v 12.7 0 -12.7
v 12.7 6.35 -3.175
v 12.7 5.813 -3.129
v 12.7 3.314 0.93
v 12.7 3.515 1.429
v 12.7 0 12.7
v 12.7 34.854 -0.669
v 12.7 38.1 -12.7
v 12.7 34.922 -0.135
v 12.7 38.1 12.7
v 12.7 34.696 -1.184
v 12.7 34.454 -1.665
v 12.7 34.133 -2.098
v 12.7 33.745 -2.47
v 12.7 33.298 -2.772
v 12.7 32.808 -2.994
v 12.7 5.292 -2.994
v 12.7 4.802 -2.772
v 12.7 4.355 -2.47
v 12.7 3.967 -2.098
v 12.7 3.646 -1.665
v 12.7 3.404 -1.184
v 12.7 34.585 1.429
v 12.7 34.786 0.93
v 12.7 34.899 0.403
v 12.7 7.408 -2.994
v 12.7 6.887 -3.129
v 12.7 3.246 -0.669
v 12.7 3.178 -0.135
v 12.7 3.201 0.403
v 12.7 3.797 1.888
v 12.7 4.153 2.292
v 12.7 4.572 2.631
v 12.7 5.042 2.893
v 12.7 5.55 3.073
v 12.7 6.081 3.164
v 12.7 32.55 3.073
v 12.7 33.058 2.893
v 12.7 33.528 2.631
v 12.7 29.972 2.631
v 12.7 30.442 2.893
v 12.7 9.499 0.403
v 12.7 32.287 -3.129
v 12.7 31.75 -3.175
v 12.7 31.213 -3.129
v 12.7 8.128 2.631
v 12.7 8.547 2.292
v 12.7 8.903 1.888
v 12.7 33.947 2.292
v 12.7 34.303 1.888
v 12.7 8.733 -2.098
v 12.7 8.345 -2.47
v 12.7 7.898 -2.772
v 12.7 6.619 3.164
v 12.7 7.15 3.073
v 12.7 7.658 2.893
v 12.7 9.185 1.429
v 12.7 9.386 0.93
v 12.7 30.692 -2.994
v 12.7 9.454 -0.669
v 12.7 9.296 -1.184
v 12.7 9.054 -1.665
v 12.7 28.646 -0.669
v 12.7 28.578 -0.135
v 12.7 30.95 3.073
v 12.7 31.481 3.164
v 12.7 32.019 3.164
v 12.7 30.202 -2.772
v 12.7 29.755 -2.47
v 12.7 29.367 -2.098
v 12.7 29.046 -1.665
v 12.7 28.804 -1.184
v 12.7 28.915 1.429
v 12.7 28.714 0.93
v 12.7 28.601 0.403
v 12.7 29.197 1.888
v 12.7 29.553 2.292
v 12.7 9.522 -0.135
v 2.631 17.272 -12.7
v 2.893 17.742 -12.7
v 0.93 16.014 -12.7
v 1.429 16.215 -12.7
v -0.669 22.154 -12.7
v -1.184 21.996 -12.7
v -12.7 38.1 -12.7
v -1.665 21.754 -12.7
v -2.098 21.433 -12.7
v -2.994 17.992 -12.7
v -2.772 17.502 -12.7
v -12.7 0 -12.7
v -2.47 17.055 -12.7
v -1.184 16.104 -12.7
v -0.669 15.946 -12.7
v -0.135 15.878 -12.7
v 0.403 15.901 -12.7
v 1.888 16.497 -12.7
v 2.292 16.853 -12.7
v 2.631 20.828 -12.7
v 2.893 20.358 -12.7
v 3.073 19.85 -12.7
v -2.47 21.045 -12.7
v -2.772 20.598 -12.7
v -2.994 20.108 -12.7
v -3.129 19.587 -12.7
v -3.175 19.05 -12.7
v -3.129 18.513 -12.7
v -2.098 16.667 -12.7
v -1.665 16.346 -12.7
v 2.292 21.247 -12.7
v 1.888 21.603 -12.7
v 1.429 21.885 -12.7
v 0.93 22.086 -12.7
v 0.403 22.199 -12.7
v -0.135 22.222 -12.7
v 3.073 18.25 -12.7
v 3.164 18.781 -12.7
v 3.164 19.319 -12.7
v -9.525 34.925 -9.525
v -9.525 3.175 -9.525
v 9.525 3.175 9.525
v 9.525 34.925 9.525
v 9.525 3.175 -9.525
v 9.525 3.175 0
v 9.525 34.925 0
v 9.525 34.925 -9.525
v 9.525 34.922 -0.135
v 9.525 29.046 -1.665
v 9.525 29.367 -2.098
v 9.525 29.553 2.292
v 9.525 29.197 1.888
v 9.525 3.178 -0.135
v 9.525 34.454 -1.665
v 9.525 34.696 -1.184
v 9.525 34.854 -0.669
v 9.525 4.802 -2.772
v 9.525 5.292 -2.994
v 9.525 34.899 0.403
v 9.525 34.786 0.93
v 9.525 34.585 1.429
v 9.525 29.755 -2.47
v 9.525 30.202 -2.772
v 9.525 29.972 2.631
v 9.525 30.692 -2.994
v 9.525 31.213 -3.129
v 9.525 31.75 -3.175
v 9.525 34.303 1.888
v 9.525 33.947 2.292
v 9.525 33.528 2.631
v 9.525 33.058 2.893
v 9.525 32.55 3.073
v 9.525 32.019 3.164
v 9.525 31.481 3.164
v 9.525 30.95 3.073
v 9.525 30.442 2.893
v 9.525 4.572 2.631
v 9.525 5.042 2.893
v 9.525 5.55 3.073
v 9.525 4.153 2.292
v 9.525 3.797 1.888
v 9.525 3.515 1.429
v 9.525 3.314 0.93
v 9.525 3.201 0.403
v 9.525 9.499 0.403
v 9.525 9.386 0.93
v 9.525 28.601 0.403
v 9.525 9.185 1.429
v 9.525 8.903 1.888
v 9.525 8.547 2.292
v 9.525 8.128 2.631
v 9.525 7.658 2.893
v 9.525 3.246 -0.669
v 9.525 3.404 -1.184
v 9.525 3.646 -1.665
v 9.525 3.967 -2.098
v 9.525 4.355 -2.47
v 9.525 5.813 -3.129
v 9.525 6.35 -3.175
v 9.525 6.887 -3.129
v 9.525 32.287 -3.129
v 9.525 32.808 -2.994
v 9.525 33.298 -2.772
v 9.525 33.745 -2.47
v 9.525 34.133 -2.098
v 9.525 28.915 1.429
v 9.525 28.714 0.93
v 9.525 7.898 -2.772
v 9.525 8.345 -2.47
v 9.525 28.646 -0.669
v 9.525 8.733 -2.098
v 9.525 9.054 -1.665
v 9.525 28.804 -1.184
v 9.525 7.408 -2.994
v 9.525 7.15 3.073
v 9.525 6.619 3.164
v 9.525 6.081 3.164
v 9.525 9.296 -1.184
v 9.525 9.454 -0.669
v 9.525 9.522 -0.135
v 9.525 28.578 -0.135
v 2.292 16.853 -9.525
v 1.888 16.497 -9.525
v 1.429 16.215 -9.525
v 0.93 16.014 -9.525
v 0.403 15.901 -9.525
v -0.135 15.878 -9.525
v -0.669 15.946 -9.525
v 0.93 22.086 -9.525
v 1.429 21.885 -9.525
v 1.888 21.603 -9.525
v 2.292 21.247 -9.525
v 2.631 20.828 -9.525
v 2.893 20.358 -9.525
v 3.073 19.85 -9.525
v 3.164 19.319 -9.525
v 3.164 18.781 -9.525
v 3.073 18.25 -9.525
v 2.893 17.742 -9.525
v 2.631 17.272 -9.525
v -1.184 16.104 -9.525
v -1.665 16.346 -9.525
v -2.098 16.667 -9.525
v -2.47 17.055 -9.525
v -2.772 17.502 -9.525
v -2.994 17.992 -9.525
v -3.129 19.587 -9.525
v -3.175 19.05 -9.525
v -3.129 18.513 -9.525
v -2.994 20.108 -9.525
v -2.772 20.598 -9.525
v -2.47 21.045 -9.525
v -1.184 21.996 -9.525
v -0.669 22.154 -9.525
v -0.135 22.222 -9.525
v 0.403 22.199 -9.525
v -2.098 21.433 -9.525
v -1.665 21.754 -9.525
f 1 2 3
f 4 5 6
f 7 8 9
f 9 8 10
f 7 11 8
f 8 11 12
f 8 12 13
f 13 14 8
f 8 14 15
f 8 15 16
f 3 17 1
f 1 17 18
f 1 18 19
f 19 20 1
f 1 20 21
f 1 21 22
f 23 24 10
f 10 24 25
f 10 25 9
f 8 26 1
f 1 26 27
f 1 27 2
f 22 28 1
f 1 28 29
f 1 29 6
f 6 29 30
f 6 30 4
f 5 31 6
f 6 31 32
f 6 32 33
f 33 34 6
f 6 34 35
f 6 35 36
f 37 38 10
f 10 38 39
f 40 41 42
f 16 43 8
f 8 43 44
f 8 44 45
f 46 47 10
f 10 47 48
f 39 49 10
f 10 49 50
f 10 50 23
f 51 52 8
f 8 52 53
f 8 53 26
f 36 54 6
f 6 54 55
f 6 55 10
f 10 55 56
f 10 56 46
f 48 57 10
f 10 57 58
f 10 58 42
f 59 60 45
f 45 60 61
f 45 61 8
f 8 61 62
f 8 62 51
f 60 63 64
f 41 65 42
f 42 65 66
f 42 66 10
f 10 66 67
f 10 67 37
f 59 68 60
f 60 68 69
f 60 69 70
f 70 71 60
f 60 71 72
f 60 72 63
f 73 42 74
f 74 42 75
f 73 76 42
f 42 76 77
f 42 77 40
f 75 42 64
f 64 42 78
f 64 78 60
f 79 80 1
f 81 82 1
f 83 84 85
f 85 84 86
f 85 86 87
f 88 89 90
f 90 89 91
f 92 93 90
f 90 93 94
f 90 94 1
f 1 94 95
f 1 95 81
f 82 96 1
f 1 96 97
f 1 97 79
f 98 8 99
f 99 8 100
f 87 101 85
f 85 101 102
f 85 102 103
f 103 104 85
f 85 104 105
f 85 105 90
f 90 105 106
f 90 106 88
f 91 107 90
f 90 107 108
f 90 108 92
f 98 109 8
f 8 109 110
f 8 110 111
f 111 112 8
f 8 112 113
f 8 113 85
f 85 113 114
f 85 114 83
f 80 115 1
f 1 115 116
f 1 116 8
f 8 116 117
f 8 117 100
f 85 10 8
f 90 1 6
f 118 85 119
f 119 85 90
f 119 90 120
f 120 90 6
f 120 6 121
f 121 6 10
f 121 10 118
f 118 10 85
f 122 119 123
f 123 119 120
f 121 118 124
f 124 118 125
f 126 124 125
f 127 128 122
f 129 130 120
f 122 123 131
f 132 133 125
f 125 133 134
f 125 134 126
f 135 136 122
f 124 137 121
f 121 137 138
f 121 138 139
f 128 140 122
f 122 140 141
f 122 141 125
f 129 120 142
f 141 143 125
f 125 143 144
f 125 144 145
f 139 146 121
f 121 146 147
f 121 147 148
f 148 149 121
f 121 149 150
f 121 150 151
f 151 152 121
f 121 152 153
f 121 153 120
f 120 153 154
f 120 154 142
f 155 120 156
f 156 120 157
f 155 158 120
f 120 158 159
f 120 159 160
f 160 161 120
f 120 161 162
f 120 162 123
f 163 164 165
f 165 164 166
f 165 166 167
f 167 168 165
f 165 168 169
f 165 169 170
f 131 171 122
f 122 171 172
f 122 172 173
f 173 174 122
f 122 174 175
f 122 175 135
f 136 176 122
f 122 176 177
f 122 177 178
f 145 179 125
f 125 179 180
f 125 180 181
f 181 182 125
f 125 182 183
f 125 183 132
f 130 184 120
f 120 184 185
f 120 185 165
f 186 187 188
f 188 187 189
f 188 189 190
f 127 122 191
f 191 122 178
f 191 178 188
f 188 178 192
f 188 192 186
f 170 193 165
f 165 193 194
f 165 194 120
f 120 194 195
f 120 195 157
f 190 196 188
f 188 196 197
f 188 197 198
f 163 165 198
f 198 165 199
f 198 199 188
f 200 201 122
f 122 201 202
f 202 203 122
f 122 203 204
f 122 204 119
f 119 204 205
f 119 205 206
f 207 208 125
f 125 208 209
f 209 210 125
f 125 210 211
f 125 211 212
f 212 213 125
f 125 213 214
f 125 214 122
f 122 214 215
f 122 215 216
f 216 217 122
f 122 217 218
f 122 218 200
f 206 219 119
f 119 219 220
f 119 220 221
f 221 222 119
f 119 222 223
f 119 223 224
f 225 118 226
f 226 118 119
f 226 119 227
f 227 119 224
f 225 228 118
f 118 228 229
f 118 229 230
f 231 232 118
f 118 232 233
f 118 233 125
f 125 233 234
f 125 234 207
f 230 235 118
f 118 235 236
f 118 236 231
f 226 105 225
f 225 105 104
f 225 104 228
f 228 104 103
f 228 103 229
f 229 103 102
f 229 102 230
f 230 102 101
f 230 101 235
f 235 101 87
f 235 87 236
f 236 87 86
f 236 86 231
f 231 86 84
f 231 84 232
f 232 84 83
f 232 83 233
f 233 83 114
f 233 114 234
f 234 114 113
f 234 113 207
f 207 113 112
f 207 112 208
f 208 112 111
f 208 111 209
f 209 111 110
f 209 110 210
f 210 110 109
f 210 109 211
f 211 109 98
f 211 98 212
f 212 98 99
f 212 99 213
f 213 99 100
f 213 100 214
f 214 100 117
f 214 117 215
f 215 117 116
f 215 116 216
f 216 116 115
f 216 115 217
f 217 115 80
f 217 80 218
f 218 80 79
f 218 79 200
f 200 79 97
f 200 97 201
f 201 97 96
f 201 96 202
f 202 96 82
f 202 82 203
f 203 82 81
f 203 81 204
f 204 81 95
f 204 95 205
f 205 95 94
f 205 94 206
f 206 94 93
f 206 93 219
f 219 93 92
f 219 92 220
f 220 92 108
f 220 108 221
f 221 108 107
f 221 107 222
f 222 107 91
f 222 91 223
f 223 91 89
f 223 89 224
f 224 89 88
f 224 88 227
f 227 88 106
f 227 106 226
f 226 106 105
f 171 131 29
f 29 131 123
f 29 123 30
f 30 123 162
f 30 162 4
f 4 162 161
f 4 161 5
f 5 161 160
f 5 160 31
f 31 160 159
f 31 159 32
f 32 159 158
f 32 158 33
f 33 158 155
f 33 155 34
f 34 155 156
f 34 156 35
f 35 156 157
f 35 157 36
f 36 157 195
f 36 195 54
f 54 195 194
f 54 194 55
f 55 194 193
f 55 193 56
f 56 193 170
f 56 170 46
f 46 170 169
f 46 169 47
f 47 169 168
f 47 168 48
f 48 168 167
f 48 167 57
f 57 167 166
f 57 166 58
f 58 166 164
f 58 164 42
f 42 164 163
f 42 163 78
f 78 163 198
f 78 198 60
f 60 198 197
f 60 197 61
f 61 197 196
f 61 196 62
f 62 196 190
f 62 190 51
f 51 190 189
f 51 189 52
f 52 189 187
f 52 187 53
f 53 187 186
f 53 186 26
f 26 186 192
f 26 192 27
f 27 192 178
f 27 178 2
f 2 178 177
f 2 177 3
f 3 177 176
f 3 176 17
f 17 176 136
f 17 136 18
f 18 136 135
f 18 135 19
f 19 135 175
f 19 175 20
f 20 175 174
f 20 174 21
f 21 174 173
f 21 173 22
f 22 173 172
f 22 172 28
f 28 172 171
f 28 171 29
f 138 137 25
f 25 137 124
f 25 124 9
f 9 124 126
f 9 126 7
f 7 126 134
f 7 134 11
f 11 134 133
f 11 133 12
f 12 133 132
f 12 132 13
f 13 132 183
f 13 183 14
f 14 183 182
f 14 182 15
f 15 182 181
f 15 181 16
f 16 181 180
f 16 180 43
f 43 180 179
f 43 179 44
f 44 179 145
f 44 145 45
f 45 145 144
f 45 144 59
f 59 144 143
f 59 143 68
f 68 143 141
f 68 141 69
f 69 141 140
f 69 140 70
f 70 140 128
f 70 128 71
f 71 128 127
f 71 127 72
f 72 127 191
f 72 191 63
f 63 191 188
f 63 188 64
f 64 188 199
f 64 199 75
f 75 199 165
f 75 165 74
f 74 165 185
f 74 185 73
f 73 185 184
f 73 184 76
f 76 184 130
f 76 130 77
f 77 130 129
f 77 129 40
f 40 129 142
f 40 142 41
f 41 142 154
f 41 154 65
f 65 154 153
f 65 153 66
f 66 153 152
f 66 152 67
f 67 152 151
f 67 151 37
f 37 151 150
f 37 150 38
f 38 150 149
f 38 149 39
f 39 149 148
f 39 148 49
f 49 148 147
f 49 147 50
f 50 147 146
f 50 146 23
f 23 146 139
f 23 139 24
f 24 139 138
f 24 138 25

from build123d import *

# Parameters (mm, degrees)
SKETCH1_W           = 25.4
SKETCH1_H           = 25.4
BOSS_EXTRUDE1_DEPTH = 38.1
CUT_EXTRUDE1_DEPTH  = 43.121134838
CUT_EXTRUDE2_START  = -3.175
CUT_EXTRUDE2_DEPTH  = 31.75
SKETCH4_R           = 3.175
CUT_EXTRUDE3_DEPTH  = 48.519048812
SKETCH5_R           = 3.175
CUT_EXTRUDE5_DEPTH  = 48.519048812


with BuildPart() as part:
    # Sketch1 → Boss-Extrude1 (new body)
    with BuildSketch(Plane(origin=(0, 0, 0), x_dir=(1, 0, 0), z_dir=(0, 1, 0))):
        Rectangle(SKETCH1_W, SKETCH1_H)
    extrude(amount=BOSS_EXTRUDE1_DEPTH)

    # Sketch2 → Cut-Extrude1 (cut, through all)
    with BuildSketch(Plane(origin=(0, 38.1, 0), x_dir=(1, 0, 0), z_dir=(0, 1, 0))):
        Polygon((-12.7, 12.7), (12.7, -12.7), (-12.7, -12.7), align=None)
    extrude(amount=-CUT_EXTRUDE1_DEPTH, mode=Mode.SUBTRACT)

    # Sketch3 → Cut-Extrude2 (cut)
    with BuildSketch(Plane(origin=(0, 38.1, 0), x_dir=(1, 0, 0), z_dir=(0, 1, 0)).offset(CUT_EXTRUDE2_START)):
        Polygon((-9.525, 9.525), (9.525, 9.525), (9.525, -9.525), align=None)
    extrude(amount=-CUT_EXTRUDE2_DEPTH, mode=Mode.SUBTRACT)

    # Sketch4 → Cut-Extrude3 (cut, through all)
    with BuildSketch(Plane(origin=(0, 0, -12.7), x_dir=(-1, 0, 0), z_dir=(0, 0, -1))):
        with Locations((0, 19.05)):
            Circle(SKETCH4_R)
    extrude(amount=-CUT_EXTRUDE3_DEPTH, mode=Mode.SUBTRACT)

    # Sketch5 → Cut-Extrude5 (cut, through all)
    with BuildSketch(Plane(origin=(12.7, 0, 0), x_dir=(0, 0, -1), z_dir=(1, 0, 0))):
        with Locations((0, 31.75)):
            Circle(SKETCH5_R)
        with Locations((0, 6.35)):
            Circle(SKETCH5_R)
    extrude(amount=-CUT_EXTRUDE5_DEPTH, mode=Mode.SUBTRACT)


solid = part.part
